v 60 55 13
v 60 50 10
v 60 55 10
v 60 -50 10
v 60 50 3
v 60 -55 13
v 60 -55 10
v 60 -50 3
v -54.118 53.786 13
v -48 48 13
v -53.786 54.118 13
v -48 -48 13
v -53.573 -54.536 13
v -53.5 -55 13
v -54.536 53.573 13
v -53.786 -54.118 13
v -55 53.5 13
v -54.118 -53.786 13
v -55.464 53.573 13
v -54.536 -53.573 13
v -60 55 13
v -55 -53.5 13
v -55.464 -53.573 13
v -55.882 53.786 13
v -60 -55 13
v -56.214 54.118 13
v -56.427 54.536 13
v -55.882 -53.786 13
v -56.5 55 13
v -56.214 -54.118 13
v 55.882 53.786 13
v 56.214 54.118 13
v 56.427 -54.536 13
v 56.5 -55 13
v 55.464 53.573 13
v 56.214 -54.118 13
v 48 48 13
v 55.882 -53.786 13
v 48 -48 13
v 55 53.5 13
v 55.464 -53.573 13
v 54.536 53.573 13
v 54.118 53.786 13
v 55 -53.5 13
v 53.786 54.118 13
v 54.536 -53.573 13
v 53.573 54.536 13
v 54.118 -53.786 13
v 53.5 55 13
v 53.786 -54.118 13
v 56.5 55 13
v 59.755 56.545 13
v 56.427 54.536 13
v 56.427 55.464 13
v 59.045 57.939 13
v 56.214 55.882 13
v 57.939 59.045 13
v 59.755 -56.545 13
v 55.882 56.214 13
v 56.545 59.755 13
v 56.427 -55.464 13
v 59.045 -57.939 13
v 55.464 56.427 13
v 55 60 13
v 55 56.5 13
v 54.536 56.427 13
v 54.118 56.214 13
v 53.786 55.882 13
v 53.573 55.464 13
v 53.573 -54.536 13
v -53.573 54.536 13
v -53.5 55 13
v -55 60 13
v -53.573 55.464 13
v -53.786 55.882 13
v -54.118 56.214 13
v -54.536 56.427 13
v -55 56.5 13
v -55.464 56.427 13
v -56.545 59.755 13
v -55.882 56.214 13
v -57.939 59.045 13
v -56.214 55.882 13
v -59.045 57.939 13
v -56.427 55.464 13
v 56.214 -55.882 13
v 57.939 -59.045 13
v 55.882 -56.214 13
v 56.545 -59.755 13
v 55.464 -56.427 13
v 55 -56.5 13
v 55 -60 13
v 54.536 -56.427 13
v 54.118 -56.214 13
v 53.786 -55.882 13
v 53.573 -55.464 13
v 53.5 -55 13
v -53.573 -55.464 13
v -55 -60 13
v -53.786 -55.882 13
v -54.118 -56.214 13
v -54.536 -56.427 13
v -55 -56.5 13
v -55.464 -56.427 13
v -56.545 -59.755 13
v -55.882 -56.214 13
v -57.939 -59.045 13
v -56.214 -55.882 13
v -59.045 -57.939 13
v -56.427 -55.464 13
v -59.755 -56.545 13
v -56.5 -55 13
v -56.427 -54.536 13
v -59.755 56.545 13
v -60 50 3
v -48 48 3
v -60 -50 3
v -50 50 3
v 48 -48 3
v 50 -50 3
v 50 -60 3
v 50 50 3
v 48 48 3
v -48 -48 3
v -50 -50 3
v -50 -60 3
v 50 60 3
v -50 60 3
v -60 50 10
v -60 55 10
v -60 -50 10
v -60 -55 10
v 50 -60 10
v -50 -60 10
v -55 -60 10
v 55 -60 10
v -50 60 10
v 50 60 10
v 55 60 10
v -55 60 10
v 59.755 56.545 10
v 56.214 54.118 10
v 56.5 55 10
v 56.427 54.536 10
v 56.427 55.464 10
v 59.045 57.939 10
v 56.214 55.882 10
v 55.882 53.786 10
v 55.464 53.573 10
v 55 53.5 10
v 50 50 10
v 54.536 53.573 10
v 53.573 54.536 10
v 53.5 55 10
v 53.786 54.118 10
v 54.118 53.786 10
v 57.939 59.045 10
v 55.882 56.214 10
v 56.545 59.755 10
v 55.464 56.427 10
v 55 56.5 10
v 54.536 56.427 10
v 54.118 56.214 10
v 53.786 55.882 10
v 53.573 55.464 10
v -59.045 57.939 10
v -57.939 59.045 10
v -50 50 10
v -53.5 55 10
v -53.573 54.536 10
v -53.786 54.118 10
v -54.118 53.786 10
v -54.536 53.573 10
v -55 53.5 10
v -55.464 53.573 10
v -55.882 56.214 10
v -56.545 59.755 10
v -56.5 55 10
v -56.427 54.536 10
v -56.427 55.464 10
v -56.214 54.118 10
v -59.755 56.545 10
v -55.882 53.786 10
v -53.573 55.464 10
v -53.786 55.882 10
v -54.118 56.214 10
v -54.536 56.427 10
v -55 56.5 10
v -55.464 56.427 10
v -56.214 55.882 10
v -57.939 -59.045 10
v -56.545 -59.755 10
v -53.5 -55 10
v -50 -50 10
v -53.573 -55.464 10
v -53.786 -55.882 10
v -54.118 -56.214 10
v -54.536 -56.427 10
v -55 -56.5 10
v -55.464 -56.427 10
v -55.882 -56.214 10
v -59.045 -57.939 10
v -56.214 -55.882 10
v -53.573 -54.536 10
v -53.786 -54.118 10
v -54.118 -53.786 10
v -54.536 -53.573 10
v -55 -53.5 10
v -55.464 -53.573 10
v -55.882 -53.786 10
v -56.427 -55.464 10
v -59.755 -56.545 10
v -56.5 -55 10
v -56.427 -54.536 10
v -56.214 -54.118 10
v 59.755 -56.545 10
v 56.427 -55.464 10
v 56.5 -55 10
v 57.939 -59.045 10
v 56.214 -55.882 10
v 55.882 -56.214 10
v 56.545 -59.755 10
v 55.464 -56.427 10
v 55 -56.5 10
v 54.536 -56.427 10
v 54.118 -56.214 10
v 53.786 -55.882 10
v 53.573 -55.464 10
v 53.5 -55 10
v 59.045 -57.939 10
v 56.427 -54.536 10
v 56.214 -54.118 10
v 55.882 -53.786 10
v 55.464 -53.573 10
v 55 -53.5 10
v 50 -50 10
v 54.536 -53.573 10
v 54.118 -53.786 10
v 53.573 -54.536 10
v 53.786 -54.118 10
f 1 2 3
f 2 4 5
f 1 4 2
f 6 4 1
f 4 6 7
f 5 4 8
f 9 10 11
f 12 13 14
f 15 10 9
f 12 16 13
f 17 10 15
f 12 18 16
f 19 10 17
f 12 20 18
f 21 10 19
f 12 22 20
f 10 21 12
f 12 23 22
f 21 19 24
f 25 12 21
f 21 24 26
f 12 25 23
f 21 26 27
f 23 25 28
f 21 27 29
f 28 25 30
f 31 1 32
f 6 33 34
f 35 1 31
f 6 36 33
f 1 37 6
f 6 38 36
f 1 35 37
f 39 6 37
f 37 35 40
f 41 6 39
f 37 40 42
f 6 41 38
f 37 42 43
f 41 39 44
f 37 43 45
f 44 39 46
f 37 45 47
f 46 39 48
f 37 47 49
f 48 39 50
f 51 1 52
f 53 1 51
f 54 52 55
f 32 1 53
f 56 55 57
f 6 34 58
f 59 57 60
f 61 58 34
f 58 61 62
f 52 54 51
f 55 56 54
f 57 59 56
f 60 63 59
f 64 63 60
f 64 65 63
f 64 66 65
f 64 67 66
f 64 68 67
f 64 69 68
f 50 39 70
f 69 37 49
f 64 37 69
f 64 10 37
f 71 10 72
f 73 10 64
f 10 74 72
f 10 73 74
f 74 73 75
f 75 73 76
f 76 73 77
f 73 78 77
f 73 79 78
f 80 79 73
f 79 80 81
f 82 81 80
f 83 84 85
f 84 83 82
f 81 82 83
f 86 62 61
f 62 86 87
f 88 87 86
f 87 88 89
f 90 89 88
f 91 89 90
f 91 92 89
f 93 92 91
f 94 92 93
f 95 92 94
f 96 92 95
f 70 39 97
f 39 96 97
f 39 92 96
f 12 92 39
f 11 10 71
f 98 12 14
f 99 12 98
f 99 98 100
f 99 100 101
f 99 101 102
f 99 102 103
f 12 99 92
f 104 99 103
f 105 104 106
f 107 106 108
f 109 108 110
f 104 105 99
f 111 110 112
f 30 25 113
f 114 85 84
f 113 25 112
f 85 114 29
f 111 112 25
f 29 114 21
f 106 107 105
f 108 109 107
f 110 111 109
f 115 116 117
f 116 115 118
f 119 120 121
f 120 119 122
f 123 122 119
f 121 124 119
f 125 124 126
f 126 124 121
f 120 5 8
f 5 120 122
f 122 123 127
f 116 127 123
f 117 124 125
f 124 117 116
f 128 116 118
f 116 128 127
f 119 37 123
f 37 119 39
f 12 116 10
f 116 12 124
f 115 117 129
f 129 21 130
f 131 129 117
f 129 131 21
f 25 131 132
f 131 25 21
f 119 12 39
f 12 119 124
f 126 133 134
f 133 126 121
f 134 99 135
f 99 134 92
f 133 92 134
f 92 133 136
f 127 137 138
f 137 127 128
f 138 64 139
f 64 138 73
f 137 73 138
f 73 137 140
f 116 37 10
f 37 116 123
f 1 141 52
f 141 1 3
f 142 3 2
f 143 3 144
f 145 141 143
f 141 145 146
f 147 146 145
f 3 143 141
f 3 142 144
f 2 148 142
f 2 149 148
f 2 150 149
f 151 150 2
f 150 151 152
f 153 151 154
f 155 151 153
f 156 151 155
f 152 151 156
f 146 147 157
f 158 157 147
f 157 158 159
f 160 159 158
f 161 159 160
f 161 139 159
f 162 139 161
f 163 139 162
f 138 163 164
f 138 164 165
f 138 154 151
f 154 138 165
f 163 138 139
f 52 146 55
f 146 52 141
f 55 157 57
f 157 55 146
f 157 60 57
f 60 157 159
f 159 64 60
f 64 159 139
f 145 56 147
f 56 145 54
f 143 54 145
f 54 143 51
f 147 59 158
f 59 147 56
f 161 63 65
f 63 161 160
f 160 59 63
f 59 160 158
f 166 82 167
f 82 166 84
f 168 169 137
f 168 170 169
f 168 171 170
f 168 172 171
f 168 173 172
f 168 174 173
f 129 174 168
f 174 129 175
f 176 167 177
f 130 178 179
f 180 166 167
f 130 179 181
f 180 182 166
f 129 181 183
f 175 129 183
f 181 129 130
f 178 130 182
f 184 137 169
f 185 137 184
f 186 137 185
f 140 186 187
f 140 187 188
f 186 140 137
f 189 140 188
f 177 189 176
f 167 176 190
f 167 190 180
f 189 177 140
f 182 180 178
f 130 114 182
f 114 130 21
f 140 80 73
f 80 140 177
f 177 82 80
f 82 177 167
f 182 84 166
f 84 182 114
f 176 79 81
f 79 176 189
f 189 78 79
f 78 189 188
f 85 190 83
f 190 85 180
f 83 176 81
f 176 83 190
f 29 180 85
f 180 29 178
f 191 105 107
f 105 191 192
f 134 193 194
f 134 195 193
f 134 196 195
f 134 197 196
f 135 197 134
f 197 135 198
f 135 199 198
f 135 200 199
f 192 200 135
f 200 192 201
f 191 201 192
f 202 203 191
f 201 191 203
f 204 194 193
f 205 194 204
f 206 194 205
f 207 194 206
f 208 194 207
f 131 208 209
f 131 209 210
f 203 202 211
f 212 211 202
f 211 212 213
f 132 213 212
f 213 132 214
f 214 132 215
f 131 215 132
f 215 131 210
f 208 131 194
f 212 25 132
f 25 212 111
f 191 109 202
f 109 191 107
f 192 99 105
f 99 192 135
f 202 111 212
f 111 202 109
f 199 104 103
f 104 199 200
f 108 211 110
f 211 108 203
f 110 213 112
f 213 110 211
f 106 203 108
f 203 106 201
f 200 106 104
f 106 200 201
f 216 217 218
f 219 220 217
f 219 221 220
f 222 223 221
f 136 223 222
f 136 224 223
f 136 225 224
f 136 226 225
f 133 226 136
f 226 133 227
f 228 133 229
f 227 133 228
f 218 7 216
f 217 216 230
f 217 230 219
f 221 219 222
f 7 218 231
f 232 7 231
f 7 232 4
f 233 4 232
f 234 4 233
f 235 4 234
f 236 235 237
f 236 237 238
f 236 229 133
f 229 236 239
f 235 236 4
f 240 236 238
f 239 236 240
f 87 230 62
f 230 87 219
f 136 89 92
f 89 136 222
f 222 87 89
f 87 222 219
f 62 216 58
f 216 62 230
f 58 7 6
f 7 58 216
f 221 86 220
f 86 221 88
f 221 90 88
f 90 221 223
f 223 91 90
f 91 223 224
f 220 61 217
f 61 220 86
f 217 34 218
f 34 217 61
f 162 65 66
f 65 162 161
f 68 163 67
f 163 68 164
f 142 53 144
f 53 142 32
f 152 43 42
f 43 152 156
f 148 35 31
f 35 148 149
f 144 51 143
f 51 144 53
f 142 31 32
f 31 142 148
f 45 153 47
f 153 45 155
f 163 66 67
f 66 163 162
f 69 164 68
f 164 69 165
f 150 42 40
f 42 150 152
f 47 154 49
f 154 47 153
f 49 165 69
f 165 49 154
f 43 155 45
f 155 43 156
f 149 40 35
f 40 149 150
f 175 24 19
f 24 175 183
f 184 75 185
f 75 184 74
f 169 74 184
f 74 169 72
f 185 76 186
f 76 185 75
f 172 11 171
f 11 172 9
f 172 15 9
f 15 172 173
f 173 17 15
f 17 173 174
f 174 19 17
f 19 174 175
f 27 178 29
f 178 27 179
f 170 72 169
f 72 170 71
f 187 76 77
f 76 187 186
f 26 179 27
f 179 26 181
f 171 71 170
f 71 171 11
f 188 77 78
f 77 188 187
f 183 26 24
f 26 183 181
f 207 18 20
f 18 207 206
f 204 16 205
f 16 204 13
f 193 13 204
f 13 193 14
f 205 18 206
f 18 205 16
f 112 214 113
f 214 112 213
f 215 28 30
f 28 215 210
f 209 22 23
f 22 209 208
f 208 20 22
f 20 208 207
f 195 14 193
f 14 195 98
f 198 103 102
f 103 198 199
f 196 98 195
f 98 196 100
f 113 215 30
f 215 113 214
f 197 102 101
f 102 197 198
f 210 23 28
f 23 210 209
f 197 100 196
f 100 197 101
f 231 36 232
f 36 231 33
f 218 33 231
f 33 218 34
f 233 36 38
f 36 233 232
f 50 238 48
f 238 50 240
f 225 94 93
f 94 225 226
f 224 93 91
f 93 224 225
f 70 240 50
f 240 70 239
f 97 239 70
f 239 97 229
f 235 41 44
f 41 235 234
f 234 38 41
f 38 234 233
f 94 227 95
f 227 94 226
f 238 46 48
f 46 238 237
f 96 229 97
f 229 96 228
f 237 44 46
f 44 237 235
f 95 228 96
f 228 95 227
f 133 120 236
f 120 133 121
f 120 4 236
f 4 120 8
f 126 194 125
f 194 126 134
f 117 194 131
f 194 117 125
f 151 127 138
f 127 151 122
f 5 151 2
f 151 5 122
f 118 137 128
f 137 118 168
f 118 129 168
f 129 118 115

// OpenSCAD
// file: flight_controller_vert_screw_holes.scad
module flight_controller_vert_screw_holes(hole_x, hole_y, bore_diameter, height, fn) {
    translate([hole_x/2, hole_y/2, 0])
        cylinder(d=bore_diameter, h=height, $fn=fn);
    
    translate([-hole_x/2, hole_y/2, 0])
        cylinder(d=bore_diameter, h=height, $fn=fn);
    
    translate([-hole_x/2, -hole_y/2, 0])
        cylinder(d=bore_diameter, h=height, $fn=fn);
    
    translate([hole_x/2, -hole_y/2, 0])
        cylinder(d=bore_diameter, h=height, $fn=fn);
}
// file: ../includes/rounded_cube.scad
// Higher definition curves
$fs = 0.01;

module rounded_cube(size = [1, 1, 1], center = false, radius = 0.5, apply_to = "all") {
	// If single value, convert to [x, y, z] vector
	size = (size[0] == undef) ? [size, size, size] : size;

	translate_min = radius;
	translate_xmax = size[0] - radius;
	translate_ymax = size[1] - radius;
	translate_zmax = size[2] - radius;

	diameter = radius * 2;

	module build_point(type = "sphere", rotate = [0, 0, 0]) {
		if (type == "sphere") {
			sphere(r = radius);
		} else if (type == "cylinder") {
			rotate(a = rotate)
			cylinder(h = diameter, r = radius, center = true);
		}
	}

	obj_translate = (center == false) ?
		[0, 0, 0] : [
			-(size[0] / 2),
			-(size[1] / 2),
			-(size[2] / 2)
		];

	translate(v = obj_translate) {
		hull() {
			for (translate_x = [translate_min, translate_xmax]) {
				x_at = (translate_x == translate_min) ? "min" : "max";
				for (translate_y = [translate_min, translate_ymax]) {
					y_at = (translate_y == translate_min) ? "min" : "max";
					for (translate_z = [translate_min, translate_zmax]) {
						z_at = (translate_z == translate_min) ? "min" : "max";

						translate(v = [translate_x, translate_y, translate_z])
						if (
							(apply_to == "all") ||
							(apply_to == "xmin" && x_at == "min") || (apply_to == "xmax" && x_at == "max") ||
							(apply_to == "ymin" && y_at == "min") || (apply_to == "ymax" && y_at == "max") ||
							(apply_to == "zmin" && z_at == "min") || (apply_to == "zmax" && z_at == "max")
						) {
							build_point("sphere");
						} else {
							rotate = 
								(apply_to == "xmin" || apply_to == "xmax" || apply_to == "x") ? [0, 90, 0] : (
								(apply_to == "ymin" || apply_to == "ymax" || apply_to == "y") ? [90, 90, 0] :
								[0, 0, 0]
							);
							build_point("cylinder", rotate);
						}
					}
				}
			}
		}
	}
}
// file: ../params.scad
function ducted_motor_mount_params() = [
    ["mounting_pin_diameter", 3], // 3mm metal screw
    ["mounting_block_height", 7], // mounting pin block hieght, through-hole length
    ["mounting_block_width", 10], // mounting pin block square width
    ["motor_mount_hole_space_3800kv", 12], // distance between adjacent holes in 3800kV motor
    ["mounting_arm_pin_to_motor_length", 58], // distance from motor center to mounting pin center
    ["shroud_height", 43.5], // case_z - 1.5
    ["shroud_radius", 51], // shroud radius, inner diameter, bottom edge
    ["counter_sink_depth", 2],
    ["fn", 60],
];  


function flight_controller_box_params() = [
    ["hole_x", 110],
    ["hole_y", 110],
    ["post_diameter", 10],
    ["bore_diameter", 3],
    ["case_z", 45],
    ["case_floor_thickness", 3],
    ["case_wall_thickness", 12],
    ["case_wall_height", 10],
    ["motor_mount_width", 10],
    ["motor_mount_height", 3],
    ["fn", 20],
];

// usage: find(params, "hole_x");
function find(h,k)= h[search([k], h, 1)[0]][1];
// main file
use <../params.scad>;
use <../includes/rounded_cube.scad>;
use <./flight_controller_vert_screw_holes.scad>;



module vertical_hole(pos, bore_diameter, h, fn) {
    translate(pos)
        cylinder(d=bore_diameter, h=h, $fn=fn);
}

module vertical_holes(hole_x, hole_y, z_pos, bore_diameter, height, fn) {
    vertical_hole([hole_x/2, hole_y/2, z_pos], bore_diameter, height, fn);
    vertical_hole([-hole_x/2, hole_y/2, z_pos], bore_diameter, height, fn);
    vertical_hole([-hole_x/2, -hole_y/2, z_pos], bore_diameter, height, fn);
    vertical_hole([hole_x/2, -hole_y/2, z_pos], bore_diameter, height,  fn);
}

module top_plate_mounting_face(pos, d, h, bore_diameter, fn) {
    translate(pos)
        difference(){
            cylinder(d=d, h=h, $fn=fn);
            cylinder(d=bore_diameter, h=h, $fn=fn);
        }
}

module top_plate_mounting_faces(hole_x, hole_y, bore_diameter, post_diameter, height, z_pos, fn) {
    top_plate_mounting_face([hole_x/2, hole_y/2, z_pos], post_diameter, height, bore_diameter, fn);
    top_plate_mounting_face([-hole_x/2, hole_y/2, z_pos], post_diameter, height, bore_diameter, fn);
    top_plate_mounting_face([-hole_x/2, -hole_y/2, z_pos], post_diameter, height, bore_diameter, fn);
    top_plate_mounting_face([hole_x/2, -hole_y/2, z_pos], post_diameter, height, bore_diameter, fn);
}

module side_walls(case_x, case_y, hole_x, hole_y, case_floor, case_wall_thickness, case_wall_height, post_diameter) {
    translate([case_x/2-case_wall_thickness, -hole_y/2, case_floor])
        cube([case_wall_thickness, case_y-post_diameter, case_wall_height]);
    
    translate([-case_x/2, -hole_y/2, case_floor])
        cube([case_wall_thickness, case_y-post_diameter, case_wall_height]);
    
    translate([-hole_x/2, -case_y/2, case_floor])
        cube([case_x-post_diameter, case_wall_thickness, case_wall_height]);
    
    translate([-hole_x/2, case_y/2-case_wall_thickness, case_floor])
        cube([case_x-post_diameter, case_wall_thickness, case_wall_height]);
}

module lift_arm_mount_recess(case_x, case_y, hole_x, hole_y, case_floor, case_wall_thickness) {
    w = 10;
    h = 7;
    translate([case_x/2-w, -hole_y/2-w/2, case_floor])
        cube([w, w, h]);
    
    translate([-case_x/2, -hole_y/2-w/2, case_floor])
        cube([w, w, h]);
    
    translate([hole_x/2-w/2, case_y/2-w, case_floor])
        cube([w, w, h]);
    
    translate([-hole_x/2-w/2, case_y/2-w, case_floor])
        cube([w, w, h]);
}

module flight_controller_wall_body(hole_x, hole_y, post_diameter, bore_diameter, case_floor, case_wall_thickness, case_wall_height, fn) {
    case_x = hole_x + post_diameter;
    case_y = hole_y + post_diameter;
    difference() {
        union() {
            side_walls(case_x,
                case_y,
                hole_x,
                hole_y,
                case_floor,
                case_wall_thickness,
                case_wall_height,
                post_diameter);
            top_plate_mounting_faces(hole_x, hole_y, bore_diameter, post_diameter, 3, case_floor+7, fn);
        }
        vertical_holes(hole_x, hole_y, case_floor+7, bore_diameter, 3, fn);
        lift_arm_mount_recess(case_x, case_y, hole_x, hole_y, case_floor, case_wall_thickness);
    }
}

module flight_controller_wall_body_part() {
    params = flight_controller_box_params();
    flight_controller_wall_body(
        find(params, "hole_x"),
        find(params, "hole_y"),
        find(params, "post_diameter"),
        find(params, "bore_diameter"),
        find(params, "case_floor_thickness"),
        find(params, "case_wall_thickness"),
        find(params, "case_wall_height"),
        find(params, "fn"));
}

flight_controller_wall_body_part();
